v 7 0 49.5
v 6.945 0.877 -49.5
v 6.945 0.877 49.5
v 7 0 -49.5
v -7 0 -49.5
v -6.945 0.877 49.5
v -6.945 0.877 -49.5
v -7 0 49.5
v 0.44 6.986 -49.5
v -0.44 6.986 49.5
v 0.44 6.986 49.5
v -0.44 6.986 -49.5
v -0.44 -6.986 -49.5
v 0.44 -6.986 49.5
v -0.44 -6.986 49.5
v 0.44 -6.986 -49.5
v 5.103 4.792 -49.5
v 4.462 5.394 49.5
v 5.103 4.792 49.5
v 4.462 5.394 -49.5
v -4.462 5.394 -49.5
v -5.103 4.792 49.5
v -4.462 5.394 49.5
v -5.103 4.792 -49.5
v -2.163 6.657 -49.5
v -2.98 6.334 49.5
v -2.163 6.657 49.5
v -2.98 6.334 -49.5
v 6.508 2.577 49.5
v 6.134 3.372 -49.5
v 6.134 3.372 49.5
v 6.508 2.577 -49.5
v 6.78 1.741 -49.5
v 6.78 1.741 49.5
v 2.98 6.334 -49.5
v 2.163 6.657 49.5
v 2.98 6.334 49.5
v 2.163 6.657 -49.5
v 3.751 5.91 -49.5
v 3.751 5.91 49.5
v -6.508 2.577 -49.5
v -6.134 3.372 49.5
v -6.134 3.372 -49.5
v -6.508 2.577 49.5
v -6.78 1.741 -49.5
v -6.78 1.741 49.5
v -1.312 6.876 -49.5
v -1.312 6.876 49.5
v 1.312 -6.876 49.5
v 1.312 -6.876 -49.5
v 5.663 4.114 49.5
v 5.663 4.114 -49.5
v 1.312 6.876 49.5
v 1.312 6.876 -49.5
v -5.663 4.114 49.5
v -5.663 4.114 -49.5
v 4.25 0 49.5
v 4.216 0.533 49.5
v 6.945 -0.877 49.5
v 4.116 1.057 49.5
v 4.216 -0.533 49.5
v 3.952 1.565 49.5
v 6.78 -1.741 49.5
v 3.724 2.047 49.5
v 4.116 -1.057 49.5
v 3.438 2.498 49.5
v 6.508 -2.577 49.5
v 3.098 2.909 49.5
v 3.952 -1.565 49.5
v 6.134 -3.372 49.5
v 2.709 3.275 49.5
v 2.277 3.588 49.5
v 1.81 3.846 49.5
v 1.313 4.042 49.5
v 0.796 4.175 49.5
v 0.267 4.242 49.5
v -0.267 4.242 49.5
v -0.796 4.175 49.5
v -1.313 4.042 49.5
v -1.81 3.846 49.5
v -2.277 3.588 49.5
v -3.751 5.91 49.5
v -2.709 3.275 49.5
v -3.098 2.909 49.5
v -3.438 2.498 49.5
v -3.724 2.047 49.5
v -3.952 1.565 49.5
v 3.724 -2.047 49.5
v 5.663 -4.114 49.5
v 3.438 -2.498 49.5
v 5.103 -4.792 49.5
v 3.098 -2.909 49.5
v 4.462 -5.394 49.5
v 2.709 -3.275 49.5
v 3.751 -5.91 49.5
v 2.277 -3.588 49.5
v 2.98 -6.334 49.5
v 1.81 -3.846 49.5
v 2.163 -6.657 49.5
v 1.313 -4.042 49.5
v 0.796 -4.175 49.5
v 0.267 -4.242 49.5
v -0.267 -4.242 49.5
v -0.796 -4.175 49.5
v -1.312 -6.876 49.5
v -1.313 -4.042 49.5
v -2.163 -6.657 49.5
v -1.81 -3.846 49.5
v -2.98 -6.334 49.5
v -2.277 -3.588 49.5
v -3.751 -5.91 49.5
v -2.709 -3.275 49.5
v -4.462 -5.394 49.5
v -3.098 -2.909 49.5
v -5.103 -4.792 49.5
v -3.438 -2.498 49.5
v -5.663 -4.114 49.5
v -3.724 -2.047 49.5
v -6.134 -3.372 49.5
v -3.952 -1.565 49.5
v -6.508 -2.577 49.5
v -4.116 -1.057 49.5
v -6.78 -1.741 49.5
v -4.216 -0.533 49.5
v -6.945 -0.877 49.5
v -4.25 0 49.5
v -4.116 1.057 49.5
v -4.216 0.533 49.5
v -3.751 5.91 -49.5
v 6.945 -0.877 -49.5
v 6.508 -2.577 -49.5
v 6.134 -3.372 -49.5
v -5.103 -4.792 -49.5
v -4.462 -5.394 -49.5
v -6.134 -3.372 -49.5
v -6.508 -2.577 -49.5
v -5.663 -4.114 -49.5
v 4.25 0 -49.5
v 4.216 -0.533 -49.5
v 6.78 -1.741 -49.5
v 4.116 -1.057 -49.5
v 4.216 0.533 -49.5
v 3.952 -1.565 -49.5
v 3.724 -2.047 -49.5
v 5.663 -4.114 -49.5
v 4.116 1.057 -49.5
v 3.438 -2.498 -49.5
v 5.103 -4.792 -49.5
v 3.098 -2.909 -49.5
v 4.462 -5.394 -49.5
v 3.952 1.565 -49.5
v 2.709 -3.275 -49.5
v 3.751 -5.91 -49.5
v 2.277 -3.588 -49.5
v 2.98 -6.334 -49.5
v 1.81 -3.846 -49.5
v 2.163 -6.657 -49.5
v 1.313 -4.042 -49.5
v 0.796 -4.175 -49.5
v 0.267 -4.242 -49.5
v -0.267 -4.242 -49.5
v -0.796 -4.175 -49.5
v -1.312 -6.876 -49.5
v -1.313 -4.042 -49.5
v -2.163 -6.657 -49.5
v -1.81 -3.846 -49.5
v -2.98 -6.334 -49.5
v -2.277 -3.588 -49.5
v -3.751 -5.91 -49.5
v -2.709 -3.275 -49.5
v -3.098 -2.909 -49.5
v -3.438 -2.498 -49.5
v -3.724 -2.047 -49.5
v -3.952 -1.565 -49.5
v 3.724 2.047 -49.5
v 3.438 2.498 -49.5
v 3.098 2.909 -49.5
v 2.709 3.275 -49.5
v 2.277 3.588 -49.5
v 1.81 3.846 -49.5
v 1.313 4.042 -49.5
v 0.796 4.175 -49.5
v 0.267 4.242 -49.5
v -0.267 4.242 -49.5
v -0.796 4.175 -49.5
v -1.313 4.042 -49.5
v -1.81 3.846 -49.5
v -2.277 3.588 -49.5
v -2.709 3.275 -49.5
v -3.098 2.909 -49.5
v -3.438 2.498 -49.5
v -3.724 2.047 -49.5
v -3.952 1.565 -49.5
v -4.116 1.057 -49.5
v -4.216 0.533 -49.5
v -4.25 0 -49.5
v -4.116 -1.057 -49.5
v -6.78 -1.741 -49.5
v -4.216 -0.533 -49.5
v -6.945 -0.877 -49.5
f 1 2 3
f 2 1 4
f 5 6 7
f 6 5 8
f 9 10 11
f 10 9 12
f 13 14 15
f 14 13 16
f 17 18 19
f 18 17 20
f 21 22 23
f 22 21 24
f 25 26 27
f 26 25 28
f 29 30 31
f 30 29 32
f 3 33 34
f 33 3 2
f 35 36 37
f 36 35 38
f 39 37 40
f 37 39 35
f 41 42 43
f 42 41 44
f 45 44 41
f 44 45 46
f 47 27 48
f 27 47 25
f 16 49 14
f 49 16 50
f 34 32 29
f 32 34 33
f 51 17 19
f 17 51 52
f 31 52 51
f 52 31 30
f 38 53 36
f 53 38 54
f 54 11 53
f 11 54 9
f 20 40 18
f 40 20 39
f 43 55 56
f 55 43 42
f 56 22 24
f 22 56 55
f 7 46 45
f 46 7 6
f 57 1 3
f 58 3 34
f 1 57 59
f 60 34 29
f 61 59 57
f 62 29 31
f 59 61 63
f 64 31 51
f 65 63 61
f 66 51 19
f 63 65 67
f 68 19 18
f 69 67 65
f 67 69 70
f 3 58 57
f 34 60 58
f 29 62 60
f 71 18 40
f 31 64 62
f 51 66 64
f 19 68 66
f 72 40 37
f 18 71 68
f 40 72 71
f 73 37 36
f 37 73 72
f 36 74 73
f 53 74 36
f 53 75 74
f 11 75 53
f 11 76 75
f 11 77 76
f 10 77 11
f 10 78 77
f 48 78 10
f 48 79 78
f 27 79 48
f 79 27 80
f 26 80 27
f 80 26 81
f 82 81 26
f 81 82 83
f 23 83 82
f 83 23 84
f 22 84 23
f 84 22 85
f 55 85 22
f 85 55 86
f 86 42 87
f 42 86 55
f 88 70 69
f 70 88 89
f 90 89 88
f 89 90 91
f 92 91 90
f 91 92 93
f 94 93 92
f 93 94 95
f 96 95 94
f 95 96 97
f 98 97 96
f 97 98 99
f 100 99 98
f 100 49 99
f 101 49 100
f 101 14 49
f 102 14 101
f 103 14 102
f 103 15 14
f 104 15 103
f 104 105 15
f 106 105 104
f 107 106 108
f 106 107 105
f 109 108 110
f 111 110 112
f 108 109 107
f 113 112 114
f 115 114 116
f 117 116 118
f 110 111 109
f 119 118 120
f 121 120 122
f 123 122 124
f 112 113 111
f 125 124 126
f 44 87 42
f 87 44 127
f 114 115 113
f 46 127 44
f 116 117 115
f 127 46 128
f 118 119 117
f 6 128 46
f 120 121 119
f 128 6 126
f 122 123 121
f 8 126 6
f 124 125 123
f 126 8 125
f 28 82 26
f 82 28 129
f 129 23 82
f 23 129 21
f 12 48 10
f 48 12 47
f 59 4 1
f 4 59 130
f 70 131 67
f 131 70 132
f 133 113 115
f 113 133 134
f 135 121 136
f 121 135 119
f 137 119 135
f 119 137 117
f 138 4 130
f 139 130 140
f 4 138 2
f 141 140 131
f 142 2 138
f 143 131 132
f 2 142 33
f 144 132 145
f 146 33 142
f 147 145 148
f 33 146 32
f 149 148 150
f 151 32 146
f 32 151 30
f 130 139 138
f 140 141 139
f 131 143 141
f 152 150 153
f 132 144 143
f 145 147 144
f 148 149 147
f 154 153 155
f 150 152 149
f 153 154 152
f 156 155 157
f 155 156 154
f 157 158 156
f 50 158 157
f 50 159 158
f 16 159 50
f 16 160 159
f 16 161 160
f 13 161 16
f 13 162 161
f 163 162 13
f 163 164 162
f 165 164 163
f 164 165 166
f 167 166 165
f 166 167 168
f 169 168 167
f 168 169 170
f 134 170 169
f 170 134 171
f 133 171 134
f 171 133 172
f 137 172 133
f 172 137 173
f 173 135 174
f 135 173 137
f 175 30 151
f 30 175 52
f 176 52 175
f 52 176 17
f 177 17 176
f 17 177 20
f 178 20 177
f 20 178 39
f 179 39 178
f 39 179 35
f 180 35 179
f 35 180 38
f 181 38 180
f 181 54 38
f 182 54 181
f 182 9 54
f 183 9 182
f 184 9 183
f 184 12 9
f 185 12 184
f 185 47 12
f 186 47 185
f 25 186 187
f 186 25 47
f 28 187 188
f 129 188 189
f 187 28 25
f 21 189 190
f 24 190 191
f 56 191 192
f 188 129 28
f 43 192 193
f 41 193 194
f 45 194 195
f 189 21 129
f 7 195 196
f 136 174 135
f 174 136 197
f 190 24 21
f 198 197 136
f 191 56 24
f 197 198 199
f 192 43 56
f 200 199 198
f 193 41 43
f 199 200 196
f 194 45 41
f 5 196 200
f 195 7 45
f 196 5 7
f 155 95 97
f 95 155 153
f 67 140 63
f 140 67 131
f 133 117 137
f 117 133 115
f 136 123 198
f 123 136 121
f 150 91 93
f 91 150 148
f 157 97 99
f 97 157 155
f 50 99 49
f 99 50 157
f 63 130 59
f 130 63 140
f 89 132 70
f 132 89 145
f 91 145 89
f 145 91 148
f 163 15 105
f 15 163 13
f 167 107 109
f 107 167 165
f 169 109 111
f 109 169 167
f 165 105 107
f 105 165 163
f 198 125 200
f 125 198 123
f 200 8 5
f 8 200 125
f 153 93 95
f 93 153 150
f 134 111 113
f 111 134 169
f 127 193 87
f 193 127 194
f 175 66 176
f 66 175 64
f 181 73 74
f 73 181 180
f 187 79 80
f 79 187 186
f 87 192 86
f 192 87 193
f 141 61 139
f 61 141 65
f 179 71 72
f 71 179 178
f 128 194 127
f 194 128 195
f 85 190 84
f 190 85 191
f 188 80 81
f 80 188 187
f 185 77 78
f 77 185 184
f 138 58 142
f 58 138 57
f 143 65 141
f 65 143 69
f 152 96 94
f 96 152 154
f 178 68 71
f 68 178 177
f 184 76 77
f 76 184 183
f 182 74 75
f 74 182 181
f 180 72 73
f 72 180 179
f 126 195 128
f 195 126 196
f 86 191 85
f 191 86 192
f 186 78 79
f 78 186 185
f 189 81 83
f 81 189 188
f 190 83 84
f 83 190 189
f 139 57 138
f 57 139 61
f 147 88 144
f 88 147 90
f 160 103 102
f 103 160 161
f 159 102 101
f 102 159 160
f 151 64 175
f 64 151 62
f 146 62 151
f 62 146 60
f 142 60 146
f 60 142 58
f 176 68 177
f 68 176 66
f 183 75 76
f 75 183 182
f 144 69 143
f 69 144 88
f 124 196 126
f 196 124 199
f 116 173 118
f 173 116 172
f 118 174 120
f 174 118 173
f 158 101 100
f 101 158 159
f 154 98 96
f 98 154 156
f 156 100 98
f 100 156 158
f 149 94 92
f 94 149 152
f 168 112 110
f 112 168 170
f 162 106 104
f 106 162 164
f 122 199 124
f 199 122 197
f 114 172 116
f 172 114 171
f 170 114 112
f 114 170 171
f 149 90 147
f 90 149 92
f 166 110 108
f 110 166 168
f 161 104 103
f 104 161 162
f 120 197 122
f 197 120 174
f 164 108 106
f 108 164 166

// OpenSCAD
$fn = 50;


difference() {
	union() {
		translate(v = [0, 0, -49.5000000000]) {
			cylinder(h = 99, r = 7.0000000000);
		}
	}
	union() {
		translate(v = [0, 0, -100.0000000000]) {
			cylinder(h = 200, r = 4.2500000000);
		}
	}
}
